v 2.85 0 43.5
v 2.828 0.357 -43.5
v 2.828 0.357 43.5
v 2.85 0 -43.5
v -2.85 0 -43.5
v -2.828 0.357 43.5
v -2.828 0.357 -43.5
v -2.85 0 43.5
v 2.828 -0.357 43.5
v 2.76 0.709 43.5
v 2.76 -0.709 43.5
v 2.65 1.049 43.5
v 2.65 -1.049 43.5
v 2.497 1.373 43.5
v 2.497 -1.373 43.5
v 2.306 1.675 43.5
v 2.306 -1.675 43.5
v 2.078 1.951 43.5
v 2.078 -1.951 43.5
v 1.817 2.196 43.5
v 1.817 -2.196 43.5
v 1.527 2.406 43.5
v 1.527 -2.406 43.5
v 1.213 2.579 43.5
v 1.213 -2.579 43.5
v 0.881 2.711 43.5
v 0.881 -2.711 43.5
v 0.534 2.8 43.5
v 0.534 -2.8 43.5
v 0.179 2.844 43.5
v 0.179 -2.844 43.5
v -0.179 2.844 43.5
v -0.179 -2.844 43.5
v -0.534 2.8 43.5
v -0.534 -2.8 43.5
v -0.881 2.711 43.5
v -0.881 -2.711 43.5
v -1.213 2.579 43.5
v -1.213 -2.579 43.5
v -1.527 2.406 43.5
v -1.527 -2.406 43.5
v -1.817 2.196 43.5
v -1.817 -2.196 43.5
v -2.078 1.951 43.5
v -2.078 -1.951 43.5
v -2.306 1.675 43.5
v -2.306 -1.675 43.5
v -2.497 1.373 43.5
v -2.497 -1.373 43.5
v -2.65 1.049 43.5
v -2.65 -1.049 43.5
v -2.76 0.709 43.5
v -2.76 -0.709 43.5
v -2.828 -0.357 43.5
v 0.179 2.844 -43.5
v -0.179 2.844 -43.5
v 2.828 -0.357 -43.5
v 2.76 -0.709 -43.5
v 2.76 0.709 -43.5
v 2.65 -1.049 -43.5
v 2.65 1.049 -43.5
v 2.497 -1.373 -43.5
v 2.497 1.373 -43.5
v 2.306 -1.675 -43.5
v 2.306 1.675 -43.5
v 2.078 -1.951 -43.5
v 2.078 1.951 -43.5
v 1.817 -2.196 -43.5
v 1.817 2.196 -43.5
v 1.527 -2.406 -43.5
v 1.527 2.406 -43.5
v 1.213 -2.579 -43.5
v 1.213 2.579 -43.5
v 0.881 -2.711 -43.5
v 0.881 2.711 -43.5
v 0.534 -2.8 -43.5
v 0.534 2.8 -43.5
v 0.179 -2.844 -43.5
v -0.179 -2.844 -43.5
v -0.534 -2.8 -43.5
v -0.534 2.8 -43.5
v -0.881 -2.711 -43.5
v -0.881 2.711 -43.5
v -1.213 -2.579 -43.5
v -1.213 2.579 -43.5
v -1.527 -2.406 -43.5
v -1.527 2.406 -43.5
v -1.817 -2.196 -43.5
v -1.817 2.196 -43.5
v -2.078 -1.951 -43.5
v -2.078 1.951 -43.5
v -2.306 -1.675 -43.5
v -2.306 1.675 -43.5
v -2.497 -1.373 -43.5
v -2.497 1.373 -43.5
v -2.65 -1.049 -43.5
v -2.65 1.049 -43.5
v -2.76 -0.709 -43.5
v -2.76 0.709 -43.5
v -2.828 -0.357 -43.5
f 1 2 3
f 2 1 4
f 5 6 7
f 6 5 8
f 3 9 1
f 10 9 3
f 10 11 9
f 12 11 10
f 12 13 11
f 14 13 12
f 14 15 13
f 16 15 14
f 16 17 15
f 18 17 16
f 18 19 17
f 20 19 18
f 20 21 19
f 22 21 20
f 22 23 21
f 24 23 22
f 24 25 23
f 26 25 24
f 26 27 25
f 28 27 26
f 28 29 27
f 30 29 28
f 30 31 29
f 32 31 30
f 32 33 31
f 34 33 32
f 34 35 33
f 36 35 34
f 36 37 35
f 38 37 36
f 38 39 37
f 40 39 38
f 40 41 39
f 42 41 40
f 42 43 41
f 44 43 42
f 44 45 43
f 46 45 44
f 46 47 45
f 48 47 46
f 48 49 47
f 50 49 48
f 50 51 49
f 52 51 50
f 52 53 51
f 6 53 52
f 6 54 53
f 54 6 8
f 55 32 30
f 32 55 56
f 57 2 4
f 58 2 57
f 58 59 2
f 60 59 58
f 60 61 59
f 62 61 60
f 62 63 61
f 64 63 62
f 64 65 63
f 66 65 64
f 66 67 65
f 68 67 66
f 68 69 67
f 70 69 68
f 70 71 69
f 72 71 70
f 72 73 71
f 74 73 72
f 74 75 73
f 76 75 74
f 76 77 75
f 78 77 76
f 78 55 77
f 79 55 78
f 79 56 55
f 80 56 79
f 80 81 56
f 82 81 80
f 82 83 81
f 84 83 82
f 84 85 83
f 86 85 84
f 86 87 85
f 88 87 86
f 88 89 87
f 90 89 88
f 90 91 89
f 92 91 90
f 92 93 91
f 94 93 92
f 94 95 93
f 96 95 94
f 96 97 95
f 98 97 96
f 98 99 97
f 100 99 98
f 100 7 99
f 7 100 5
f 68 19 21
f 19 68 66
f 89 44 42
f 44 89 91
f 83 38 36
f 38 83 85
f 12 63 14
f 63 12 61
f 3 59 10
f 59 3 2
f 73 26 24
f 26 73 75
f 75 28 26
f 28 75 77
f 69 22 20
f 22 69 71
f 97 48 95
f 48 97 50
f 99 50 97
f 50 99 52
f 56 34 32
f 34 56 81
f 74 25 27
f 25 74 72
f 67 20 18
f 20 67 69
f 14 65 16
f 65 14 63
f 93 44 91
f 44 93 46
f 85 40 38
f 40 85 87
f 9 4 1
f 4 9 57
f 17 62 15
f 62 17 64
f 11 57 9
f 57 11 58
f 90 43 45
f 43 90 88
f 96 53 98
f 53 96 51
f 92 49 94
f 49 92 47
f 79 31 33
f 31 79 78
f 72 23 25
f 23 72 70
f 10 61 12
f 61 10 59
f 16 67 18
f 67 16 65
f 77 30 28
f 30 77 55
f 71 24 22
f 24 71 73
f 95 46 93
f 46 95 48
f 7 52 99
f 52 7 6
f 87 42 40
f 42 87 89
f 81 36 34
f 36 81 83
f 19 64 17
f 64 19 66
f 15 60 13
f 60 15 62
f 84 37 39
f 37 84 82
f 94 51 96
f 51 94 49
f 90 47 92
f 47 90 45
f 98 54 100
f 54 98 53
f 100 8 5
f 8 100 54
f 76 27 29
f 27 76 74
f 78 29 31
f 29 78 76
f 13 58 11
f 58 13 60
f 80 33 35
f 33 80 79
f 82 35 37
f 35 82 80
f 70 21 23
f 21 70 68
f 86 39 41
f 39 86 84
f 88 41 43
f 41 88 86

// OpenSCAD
$fn = 50;


difference() {
	union() {
		translate(v = [0, 0, -43.5000000000]) {
			cylinder(h = 87, r = 2.8500000000);
		}
	}
	union() {
		translate(v = [0, 0, -100.0000000000]) {
			cylinder(h = 200, r = 0);
		}
	}
}
